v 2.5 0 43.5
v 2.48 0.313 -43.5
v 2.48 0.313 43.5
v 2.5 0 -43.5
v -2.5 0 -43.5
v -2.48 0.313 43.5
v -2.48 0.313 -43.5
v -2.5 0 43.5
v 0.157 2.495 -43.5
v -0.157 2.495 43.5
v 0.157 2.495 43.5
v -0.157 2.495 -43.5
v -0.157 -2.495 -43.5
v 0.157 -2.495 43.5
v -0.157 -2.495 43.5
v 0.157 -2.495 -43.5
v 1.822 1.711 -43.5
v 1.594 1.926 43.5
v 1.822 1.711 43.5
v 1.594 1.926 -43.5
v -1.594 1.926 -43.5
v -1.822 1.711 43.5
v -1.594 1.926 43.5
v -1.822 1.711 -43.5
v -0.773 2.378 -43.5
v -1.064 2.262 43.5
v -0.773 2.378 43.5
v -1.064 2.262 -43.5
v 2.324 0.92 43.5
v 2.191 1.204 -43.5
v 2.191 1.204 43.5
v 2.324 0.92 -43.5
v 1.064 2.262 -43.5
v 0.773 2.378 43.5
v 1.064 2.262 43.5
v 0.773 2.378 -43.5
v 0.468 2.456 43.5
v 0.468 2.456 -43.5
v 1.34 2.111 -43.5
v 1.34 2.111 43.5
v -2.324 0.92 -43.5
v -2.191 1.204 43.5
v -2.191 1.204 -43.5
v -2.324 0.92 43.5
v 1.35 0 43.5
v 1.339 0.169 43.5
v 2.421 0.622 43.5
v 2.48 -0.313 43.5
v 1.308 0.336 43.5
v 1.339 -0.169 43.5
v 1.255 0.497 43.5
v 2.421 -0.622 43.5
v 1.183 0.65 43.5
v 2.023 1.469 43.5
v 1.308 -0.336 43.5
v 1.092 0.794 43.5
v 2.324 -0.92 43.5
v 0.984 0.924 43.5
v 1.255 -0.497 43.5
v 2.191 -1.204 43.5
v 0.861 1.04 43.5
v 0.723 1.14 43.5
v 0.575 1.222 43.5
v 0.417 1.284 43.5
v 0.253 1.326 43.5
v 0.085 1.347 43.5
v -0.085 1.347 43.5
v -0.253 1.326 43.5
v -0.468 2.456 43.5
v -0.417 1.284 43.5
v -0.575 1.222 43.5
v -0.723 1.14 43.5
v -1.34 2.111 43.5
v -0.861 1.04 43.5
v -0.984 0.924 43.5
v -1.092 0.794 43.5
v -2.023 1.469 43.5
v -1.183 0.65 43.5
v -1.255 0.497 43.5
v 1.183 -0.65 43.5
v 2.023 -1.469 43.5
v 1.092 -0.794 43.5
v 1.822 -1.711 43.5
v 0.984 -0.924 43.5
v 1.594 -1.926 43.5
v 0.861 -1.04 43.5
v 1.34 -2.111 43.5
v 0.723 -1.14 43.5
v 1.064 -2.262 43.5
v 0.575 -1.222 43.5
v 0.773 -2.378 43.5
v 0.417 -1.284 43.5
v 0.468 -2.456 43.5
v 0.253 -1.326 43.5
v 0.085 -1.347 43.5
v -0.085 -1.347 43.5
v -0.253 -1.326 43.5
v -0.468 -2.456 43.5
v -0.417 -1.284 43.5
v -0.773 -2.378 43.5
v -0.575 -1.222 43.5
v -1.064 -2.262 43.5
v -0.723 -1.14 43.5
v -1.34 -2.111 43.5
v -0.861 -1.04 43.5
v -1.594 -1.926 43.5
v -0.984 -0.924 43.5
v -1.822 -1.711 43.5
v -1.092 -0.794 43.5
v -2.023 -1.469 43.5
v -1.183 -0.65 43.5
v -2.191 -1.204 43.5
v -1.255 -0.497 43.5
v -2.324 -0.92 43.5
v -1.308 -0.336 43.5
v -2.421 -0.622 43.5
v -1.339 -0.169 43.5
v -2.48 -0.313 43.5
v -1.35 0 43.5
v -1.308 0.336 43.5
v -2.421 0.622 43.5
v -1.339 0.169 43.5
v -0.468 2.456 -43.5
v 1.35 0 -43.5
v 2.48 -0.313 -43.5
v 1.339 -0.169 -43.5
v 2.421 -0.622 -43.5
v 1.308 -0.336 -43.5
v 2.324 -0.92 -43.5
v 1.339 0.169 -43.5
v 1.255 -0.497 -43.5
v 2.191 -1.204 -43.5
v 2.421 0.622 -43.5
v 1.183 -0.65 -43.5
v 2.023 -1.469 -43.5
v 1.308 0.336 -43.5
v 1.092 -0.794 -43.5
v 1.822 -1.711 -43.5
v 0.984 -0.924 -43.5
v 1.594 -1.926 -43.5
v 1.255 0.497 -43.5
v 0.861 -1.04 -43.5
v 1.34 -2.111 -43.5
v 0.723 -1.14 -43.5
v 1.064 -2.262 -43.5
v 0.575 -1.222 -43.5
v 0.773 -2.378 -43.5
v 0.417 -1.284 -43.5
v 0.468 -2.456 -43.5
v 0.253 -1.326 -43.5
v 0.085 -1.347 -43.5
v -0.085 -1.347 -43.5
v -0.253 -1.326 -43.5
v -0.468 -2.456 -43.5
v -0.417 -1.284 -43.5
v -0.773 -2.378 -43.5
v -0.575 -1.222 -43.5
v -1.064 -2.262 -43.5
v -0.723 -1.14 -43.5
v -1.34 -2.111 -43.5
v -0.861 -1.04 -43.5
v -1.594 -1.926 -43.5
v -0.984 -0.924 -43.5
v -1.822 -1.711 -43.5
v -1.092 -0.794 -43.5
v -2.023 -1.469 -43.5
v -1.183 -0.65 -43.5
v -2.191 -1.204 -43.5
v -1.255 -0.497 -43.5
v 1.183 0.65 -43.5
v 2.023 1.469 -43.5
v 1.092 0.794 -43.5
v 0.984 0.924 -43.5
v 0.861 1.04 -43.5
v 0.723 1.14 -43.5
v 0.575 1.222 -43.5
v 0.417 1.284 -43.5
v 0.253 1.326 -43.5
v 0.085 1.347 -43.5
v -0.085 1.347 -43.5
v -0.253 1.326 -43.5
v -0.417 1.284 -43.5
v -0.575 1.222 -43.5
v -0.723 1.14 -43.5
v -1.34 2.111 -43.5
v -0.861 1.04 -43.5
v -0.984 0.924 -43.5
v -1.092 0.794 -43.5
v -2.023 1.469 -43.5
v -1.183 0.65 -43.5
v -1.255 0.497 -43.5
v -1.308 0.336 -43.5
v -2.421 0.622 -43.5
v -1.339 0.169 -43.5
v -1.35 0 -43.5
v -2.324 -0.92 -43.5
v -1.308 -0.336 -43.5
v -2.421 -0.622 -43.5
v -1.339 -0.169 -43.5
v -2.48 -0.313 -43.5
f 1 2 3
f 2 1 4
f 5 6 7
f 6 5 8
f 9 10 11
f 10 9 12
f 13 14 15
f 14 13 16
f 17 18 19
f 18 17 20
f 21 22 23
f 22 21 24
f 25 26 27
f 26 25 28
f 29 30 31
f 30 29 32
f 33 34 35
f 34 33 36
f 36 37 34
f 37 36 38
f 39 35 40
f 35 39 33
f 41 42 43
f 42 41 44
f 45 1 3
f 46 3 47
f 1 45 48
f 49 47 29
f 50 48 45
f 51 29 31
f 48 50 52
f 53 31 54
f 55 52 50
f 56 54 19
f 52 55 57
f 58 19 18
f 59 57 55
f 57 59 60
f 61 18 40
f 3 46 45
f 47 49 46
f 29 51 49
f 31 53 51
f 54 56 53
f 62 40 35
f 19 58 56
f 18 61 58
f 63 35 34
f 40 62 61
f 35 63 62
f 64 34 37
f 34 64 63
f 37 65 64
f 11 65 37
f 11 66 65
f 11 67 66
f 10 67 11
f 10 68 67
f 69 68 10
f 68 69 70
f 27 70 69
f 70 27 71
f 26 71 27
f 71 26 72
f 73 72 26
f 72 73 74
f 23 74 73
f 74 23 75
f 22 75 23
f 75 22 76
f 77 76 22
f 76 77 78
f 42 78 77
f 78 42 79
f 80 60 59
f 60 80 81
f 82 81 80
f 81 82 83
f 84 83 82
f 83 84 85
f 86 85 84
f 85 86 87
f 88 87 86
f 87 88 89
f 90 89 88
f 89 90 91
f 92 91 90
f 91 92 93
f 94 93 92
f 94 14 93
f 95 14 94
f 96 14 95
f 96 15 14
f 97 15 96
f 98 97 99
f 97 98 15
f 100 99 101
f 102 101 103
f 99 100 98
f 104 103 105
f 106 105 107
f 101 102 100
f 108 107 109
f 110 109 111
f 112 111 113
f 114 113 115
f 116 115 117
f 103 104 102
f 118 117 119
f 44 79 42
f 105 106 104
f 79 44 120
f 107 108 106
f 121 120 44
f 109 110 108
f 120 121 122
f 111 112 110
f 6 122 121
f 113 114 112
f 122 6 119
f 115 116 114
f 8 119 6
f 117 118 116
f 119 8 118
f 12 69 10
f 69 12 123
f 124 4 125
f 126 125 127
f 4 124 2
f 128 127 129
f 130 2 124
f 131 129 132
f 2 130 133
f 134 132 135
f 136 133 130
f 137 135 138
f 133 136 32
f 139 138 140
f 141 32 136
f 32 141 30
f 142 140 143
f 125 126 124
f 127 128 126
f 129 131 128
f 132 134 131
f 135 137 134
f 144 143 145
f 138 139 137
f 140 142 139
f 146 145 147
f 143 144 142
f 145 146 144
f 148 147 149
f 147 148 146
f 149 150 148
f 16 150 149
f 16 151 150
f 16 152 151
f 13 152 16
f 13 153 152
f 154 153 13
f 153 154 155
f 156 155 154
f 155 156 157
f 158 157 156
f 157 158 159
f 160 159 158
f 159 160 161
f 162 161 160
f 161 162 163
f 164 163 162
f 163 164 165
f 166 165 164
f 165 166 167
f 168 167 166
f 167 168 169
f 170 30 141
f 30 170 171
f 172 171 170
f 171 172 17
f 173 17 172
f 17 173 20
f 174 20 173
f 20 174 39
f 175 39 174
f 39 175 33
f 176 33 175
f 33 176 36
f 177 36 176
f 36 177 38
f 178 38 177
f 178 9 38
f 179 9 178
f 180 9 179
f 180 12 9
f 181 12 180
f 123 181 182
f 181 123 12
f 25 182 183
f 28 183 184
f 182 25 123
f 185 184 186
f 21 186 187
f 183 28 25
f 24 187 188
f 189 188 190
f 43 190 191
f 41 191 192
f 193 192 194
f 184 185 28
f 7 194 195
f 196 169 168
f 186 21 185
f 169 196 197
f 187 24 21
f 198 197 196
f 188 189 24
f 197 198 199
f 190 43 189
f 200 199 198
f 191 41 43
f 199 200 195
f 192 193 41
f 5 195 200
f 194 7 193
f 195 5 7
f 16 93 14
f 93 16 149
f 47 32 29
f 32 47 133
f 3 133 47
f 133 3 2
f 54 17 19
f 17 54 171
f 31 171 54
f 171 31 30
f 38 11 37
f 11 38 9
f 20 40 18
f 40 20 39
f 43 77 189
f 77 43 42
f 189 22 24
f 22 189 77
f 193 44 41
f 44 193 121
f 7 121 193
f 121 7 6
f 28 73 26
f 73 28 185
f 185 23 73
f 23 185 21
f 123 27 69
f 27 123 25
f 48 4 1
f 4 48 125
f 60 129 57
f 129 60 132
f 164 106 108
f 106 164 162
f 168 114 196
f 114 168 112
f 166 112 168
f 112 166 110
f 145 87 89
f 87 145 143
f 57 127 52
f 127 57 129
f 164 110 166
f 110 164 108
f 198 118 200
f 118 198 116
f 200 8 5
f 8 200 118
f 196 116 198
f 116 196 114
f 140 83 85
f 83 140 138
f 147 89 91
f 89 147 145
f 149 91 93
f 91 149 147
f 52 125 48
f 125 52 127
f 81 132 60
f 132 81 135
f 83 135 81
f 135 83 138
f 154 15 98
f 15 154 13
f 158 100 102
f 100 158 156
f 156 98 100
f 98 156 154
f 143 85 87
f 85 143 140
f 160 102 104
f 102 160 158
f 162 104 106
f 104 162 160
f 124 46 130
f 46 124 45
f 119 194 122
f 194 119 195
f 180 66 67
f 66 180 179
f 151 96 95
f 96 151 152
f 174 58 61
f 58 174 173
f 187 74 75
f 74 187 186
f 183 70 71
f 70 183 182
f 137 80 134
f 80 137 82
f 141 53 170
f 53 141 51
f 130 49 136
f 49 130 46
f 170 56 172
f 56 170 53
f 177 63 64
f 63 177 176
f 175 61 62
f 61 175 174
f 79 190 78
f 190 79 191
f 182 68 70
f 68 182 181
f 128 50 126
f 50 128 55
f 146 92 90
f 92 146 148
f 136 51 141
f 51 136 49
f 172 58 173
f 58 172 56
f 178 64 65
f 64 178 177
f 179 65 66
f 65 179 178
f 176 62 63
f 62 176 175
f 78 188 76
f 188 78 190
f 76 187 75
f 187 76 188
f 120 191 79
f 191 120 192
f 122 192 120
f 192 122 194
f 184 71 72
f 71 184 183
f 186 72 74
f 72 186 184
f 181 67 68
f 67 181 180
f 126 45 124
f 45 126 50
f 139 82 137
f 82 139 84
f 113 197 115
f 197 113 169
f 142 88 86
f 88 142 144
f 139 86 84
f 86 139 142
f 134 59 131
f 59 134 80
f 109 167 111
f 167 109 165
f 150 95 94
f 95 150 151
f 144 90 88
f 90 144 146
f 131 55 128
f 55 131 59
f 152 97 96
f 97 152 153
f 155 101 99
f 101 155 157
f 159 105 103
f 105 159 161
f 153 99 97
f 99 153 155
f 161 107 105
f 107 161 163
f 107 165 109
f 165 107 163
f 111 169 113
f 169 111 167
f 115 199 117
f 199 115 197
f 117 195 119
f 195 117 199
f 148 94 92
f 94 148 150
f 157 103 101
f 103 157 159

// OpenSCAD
$fn = 50;


difference() {
	union() {
		translate(v = [0, 0, -43.5000000000]) {
			cylinder(h = 87, r = 2.5000000000);
		}
	}
	union() {
		translate(v = [0, 0, -100.0000000000]) {
			cylinder(h = 200, r = 1.3500000000);
		}
	}
}
